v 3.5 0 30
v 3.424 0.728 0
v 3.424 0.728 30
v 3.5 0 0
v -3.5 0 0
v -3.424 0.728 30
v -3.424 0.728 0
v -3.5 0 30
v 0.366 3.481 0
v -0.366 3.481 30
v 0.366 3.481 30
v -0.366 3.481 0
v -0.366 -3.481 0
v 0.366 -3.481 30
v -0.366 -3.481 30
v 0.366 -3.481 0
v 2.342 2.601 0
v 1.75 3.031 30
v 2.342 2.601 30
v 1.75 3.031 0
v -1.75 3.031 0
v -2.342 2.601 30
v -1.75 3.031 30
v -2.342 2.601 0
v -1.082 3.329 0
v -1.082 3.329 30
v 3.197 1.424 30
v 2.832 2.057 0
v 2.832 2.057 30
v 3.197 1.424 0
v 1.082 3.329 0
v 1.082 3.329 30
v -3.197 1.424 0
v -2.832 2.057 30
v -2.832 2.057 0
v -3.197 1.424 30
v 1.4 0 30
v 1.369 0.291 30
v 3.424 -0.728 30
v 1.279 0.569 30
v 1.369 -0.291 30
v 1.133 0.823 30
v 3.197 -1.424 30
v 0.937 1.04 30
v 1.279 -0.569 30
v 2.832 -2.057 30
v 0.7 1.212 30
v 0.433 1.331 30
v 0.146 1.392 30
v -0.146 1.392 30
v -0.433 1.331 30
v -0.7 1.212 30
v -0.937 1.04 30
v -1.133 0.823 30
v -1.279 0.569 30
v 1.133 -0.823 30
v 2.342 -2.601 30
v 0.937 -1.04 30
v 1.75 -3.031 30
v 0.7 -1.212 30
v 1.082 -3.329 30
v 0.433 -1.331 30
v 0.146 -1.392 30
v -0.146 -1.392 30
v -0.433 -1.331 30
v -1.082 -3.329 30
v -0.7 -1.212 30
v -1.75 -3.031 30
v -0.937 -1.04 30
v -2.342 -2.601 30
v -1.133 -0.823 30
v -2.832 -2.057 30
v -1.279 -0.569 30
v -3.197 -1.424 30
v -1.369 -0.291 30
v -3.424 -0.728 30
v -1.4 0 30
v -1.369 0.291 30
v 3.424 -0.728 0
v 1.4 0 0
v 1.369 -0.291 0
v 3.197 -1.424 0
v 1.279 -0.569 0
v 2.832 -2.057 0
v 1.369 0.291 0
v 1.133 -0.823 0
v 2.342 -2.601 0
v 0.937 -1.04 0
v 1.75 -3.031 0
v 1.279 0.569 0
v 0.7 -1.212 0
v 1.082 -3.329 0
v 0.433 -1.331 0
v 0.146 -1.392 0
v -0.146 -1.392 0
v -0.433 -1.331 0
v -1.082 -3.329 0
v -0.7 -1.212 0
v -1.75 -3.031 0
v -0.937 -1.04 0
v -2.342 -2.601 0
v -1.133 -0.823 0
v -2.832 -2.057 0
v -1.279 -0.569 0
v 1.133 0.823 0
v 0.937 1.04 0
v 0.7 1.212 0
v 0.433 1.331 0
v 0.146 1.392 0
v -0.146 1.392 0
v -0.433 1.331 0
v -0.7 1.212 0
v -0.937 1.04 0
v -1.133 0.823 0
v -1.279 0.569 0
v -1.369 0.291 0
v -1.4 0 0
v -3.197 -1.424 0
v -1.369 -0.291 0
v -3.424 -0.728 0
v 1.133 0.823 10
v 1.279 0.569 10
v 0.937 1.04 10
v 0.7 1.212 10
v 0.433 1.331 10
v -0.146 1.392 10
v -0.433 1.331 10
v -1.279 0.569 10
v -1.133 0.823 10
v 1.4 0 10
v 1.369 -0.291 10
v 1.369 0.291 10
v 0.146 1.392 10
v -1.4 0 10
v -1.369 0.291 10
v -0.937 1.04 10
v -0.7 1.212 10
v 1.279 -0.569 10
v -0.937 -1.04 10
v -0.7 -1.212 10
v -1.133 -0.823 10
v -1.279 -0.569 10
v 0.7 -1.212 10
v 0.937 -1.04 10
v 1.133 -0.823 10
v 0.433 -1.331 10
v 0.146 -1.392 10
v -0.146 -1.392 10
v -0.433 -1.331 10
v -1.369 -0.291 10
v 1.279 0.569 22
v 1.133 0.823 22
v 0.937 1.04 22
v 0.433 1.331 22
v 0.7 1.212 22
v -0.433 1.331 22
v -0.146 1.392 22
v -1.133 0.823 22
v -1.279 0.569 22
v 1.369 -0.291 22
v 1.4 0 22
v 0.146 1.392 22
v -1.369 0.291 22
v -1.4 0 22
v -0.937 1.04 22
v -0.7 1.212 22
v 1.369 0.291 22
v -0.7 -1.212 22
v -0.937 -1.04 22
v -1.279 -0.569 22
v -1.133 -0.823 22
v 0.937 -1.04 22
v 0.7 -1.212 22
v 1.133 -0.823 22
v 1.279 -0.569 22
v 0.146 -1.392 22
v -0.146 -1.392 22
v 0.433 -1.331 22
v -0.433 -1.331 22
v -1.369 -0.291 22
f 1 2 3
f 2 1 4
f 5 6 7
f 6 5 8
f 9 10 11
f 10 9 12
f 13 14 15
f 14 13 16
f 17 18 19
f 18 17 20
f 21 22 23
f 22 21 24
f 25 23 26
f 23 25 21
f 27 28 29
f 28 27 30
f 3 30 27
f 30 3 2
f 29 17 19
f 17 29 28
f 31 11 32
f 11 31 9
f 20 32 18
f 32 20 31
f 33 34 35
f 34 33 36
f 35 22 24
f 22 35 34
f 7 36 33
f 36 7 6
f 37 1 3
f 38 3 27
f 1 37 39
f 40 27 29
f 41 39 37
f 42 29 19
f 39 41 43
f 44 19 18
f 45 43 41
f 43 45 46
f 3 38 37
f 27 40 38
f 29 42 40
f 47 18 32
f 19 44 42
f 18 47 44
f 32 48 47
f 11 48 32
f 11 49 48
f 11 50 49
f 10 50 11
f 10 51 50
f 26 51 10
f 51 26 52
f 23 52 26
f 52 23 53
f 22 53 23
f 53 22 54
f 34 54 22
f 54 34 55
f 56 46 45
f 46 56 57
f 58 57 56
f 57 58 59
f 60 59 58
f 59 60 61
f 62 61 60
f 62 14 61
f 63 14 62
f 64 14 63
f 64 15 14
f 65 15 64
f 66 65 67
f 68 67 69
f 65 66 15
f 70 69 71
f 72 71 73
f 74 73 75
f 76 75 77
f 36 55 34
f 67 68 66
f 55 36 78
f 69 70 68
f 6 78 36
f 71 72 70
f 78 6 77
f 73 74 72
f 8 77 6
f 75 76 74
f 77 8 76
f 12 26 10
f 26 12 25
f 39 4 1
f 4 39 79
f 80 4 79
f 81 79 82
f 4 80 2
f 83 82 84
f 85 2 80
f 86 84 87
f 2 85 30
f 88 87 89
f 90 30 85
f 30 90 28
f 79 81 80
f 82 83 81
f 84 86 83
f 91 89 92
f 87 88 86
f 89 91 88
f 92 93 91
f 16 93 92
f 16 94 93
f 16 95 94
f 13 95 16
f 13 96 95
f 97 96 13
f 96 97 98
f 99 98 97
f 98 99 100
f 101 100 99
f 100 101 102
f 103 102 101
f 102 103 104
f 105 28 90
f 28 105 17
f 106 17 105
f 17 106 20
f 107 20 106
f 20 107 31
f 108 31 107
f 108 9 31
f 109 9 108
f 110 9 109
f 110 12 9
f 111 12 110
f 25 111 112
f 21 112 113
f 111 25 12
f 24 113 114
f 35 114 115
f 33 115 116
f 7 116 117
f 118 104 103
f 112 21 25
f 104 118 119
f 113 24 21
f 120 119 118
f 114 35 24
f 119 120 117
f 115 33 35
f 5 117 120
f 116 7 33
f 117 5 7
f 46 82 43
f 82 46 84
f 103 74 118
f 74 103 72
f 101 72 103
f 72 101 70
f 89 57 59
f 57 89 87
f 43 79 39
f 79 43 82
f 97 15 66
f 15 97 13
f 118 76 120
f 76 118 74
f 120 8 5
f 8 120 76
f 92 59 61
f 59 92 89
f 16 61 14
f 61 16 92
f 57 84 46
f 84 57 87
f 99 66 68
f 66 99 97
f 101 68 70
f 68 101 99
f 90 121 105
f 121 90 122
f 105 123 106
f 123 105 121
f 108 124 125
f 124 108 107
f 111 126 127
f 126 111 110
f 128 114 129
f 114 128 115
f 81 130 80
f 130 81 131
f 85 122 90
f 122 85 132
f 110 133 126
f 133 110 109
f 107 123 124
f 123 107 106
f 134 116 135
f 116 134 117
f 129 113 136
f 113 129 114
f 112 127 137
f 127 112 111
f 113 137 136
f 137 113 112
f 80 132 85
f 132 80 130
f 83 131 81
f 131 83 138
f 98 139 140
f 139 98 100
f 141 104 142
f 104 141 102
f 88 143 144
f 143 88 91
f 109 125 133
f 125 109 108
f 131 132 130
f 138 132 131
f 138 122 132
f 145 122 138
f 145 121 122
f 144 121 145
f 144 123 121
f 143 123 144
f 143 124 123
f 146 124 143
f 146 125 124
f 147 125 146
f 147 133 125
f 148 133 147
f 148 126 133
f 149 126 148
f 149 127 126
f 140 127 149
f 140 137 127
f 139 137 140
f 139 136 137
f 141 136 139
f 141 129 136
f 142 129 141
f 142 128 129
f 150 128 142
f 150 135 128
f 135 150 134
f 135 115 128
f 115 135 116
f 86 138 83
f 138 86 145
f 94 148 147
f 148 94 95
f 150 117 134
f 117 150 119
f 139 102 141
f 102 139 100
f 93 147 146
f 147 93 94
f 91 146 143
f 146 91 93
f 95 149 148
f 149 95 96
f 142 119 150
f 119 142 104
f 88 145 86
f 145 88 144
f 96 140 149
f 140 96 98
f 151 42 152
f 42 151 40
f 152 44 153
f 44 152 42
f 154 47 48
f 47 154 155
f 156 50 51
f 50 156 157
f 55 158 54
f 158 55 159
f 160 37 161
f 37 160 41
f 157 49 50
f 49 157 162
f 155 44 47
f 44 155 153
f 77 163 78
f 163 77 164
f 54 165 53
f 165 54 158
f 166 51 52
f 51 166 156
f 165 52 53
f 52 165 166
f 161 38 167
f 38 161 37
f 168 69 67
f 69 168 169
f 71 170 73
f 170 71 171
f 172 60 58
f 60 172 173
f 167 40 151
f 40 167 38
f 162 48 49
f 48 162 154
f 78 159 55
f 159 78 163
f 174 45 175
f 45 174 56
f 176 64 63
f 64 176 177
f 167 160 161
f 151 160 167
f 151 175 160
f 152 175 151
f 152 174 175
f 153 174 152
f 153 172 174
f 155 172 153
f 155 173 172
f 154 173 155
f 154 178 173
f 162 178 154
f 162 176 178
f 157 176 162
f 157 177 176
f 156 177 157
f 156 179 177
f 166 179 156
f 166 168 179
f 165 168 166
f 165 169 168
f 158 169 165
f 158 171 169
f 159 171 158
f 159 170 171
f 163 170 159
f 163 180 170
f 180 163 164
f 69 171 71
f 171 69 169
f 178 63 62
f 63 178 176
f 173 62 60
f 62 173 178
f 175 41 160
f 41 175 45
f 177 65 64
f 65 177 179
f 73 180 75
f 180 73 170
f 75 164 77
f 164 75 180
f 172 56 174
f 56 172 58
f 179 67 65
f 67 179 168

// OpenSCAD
$fn=30;
difference(){
cylinder(d=7,h=30);
cylinder(d=2.8,h=10);
translate([0,0,22])cylinder(d=2.8,h=10);
}
